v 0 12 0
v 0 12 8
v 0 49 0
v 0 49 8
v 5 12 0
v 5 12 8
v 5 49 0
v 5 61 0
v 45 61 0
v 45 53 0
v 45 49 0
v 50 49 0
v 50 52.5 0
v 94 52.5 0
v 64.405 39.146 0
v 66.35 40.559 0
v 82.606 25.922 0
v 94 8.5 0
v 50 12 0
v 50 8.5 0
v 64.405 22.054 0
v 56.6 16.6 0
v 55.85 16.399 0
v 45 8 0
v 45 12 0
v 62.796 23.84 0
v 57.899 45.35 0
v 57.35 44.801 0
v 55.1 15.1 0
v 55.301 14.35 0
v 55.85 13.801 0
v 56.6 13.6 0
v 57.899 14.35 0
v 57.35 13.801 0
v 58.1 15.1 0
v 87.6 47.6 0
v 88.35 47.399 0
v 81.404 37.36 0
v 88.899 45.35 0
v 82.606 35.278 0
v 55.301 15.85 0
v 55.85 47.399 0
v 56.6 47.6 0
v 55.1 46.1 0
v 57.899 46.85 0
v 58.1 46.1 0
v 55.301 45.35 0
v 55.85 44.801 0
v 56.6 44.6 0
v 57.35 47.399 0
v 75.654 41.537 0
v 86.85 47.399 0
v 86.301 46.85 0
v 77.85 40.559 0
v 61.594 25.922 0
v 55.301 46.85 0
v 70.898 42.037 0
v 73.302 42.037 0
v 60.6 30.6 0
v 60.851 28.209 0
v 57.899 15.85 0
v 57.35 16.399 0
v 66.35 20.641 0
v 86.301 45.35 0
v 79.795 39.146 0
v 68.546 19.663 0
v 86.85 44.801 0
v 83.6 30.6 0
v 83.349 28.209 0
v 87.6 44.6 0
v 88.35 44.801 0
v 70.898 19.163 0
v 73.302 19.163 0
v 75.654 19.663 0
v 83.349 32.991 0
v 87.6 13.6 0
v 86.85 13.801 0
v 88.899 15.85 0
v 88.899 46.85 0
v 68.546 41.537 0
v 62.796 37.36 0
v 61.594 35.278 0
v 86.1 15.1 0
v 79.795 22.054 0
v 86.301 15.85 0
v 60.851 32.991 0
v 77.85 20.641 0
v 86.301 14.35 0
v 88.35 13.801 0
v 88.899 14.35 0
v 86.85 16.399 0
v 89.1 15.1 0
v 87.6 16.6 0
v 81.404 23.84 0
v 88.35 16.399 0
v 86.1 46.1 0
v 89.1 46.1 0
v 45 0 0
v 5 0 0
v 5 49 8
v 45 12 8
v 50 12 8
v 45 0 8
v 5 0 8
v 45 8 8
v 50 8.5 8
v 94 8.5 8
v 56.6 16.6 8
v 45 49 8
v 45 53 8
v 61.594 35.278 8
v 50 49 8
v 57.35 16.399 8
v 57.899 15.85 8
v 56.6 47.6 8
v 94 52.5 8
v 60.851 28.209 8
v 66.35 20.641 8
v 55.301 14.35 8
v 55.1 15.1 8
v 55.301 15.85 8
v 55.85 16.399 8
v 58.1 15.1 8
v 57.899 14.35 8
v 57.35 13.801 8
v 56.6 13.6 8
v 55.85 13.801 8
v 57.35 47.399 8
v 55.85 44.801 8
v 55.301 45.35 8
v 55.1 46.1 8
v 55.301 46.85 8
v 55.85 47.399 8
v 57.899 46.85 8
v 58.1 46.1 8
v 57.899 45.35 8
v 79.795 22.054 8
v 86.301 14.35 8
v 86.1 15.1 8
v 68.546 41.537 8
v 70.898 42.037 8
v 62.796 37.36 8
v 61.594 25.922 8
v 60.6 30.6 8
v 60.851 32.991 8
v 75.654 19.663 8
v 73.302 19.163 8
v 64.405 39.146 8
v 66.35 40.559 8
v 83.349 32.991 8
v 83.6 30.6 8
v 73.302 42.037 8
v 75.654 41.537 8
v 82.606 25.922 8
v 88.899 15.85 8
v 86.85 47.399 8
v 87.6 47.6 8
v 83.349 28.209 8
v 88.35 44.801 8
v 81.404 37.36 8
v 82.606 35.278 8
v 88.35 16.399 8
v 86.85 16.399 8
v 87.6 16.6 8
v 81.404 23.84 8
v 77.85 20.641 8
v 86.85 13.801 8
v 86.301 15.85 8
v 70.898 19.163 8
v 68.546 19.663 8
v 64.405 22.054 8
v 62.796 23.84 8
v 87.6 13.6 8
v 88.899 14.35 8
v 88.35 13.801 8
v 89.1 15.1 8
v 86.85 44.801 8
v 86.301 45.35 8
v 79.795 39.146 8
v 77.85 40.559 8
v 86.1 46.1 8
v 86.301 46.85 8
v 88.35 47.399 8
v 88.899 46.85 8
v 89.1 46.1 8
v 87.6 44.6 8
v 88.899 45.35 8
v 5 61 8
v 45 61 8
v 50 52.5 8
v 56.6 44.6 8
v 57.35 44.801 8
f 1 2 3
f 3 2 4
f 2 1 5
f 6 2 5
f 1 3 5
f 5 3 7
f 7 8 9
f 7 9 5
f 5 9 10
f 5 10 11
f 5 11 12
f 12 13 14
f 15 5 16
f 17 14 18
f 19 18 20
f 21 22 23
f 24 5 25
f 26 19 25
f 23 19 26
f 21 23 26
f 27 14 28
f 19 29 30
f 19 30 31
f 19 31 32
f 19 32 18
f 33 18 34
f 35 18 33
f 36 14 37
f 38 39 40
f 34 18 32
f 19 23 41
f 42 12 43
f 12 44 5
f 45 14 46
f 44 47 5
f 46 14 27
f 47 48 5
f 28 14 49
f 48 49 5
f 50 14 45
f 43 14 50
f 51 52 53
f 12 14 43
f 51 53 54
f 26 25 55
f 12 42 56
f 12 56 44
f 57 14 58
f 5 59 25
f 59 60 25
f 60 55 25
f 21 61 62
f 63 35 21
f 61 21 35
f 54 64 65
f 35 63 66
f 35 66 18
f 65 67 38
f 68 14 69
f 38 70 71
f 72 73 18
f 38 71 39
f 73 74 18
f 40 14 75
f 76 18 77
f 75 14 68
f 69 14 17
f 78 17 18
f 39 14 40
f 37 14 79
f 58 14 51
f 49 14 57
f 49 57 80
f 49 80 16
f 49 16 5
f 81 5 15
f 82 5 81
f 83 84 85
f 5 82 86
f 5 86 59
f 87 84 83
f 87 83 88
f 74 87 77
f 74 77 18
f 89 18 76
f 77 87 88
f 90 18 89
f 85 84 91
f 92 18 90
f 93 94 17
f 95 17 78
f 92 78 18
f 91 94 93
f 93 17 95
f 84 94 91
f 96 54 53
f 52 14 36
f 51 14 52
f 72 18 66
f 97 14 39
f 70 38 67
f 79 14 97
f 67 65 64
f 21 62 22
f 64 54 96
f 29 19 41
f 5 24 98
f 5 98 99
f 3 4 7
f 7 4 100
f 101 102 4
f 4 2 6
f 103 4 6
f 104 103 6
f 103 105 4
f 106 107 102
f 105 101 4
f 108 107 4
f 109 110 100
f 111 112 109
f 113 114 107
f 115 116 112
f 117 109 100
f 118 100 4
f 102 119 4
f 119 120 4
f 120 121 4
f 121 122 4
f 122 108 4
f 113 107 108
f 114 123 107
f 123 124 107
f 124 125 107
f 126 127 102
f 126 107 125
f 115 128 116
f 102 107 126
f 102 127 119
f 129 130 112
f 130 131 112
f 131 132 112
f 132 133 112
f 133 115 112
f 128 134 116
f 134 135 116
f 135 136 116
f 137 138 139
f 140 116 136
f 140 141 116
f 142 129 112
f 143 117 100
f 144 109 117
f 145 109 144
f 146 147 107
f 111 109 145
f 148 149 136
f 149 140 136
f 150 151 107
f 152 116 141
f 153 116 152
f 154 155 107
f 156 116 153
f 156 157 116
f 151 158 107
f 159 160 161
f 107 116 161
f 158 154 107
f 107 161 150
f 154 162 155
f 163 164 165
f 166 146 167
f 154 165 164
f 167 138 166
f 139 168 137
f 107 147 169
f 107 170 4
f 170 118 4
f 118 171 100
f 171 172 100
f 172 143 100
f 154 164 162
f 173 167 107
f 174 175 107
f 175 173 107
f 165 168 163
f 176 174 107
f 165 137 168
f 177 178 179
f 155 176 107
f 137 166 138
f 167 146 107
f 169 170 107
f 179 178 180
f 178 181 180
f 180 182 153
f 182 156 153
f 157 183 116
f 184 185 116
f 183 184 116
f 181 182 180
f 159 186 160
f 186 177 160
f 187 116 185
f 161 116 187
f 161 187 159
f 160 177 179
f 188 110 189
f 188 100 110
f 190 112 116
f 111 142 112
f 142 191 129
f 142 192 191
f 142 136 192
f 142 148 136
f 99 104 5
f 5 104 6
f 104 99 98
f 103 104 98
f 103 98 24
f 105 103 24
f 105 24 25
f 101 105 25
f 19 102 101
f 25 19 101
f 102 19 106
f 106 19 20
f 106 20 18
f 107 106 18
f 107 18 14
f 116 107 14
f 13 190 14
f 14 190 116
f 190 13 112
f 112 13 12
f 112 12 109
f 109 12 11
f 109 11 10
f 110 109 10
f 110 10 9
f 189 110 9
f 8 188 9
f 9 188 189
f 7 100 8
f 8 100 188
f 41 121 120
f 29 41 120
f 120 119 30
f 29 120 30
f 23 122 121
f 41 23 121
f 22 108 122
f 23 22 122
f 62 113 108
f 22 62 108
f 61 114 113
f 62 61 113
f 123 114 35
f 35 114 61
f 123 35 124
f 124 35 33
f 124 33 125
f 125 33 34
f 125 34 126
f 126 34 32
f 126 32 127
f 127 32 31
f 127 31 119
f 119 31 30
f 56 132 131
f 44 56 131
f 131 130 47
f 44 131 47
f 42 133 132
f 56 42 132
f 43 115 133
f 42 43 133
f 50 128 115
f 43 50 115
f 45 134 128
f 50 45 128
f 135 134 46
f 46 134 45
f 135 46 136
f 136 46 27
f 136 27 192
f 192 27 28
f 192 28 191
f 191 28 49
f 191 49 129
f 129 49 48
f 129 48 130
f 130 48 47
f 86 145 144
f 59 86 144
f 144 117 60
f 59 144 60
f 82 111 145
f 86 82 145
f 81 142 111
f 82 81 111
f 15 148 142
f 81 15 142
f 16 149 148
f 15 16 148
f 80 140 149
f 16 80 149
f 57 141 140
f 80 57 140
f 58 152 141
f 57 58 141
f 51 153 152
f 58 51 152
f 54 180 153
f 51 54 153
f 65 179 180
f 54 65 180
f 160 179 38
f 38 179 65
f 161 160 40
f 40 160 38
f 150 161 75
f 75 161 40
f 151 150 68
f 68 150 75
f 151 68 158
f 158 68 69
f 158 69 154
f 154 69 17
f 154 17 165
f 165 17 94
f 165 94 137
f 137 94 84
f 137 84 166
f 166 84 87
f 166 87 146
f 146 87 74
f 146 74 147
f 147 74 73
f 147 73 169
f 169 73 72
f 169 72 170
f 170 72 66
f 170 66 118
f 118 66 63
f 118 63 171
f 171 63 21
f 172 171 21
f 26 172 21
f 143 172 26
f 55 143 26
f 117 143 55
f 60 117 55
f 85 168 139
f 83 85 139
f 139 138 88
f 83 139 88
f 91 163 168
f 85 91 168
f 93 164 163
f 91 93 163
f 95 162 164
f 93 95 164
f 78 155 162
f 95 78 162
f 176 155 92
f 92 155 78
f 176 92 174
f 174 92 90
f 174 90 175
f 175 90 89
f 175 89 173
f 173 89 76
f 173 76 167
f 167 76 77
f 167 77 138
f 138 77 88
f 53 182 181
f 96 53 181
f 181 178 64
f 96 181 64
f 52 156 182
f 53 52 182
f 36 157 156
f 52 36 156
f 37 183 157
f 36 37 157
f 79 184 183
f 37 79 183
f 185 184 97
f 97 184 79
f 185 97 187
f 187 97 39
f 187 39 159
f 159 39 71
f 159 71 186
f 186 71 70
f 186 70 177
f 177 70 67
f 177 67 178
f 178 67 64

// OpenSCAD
//square ([20,20],center =true);

// inkscape
//import(file="111.dxf", layer="Layer_1", origin = [0,0], scale = 1);
//translate([-10,-225,0]) linear_extrude(file = "part15_1.dxf", layer = "0", height = 10, center = true, convexity = 10, twist = -0);

// corel
//import(file="part15_1_corel.dxf", layer="LAYER_1", origin = [0,0], scale = 1);
//translate([-10,-225,0]) linear_extrude(file = "part15_1.dxf", layer = "LAYER_1", height = 10, center = true, convexity = 10, twist = -0);

// старый вариант
//linear_extrude(height = 8, center = false, convexity = 10, twist = 0)
//import(file="part15_11.dxf", layer="Layer_1", origin = [0,0], scale = 1);

a=12;//8
b=30;//16
//translate([0,0,8])
difference () {
	union(){
	translate([5,0,0]) cube([40,61,8]);
	translate([0,12,0])cube ([20,37,8]);
	translate([35,8.5,0])cube ([59,44,8]);
	}
translate ([72.1,30.6,-1]) cylinder (18,r=23/2,$fn=b);
translate ([87.6,15.1,-1])cylinder (18,r=3/2,$fn=a);
translate ([87.6-31,15.1,-1])cylinder (18,r=3/2,$fn=a);
translate ([87.6,15.1+31,-1])cylinder (18,r=3/2,$fn=a);
translate ([87.6-31,15.1+31,-1])cylinder (18,r=3/2,$fn=a);
translate ([45,8,-1]) cube ([5,4,10]);
translate ([45,49,-1]) cube ([5,4,10]);
}
